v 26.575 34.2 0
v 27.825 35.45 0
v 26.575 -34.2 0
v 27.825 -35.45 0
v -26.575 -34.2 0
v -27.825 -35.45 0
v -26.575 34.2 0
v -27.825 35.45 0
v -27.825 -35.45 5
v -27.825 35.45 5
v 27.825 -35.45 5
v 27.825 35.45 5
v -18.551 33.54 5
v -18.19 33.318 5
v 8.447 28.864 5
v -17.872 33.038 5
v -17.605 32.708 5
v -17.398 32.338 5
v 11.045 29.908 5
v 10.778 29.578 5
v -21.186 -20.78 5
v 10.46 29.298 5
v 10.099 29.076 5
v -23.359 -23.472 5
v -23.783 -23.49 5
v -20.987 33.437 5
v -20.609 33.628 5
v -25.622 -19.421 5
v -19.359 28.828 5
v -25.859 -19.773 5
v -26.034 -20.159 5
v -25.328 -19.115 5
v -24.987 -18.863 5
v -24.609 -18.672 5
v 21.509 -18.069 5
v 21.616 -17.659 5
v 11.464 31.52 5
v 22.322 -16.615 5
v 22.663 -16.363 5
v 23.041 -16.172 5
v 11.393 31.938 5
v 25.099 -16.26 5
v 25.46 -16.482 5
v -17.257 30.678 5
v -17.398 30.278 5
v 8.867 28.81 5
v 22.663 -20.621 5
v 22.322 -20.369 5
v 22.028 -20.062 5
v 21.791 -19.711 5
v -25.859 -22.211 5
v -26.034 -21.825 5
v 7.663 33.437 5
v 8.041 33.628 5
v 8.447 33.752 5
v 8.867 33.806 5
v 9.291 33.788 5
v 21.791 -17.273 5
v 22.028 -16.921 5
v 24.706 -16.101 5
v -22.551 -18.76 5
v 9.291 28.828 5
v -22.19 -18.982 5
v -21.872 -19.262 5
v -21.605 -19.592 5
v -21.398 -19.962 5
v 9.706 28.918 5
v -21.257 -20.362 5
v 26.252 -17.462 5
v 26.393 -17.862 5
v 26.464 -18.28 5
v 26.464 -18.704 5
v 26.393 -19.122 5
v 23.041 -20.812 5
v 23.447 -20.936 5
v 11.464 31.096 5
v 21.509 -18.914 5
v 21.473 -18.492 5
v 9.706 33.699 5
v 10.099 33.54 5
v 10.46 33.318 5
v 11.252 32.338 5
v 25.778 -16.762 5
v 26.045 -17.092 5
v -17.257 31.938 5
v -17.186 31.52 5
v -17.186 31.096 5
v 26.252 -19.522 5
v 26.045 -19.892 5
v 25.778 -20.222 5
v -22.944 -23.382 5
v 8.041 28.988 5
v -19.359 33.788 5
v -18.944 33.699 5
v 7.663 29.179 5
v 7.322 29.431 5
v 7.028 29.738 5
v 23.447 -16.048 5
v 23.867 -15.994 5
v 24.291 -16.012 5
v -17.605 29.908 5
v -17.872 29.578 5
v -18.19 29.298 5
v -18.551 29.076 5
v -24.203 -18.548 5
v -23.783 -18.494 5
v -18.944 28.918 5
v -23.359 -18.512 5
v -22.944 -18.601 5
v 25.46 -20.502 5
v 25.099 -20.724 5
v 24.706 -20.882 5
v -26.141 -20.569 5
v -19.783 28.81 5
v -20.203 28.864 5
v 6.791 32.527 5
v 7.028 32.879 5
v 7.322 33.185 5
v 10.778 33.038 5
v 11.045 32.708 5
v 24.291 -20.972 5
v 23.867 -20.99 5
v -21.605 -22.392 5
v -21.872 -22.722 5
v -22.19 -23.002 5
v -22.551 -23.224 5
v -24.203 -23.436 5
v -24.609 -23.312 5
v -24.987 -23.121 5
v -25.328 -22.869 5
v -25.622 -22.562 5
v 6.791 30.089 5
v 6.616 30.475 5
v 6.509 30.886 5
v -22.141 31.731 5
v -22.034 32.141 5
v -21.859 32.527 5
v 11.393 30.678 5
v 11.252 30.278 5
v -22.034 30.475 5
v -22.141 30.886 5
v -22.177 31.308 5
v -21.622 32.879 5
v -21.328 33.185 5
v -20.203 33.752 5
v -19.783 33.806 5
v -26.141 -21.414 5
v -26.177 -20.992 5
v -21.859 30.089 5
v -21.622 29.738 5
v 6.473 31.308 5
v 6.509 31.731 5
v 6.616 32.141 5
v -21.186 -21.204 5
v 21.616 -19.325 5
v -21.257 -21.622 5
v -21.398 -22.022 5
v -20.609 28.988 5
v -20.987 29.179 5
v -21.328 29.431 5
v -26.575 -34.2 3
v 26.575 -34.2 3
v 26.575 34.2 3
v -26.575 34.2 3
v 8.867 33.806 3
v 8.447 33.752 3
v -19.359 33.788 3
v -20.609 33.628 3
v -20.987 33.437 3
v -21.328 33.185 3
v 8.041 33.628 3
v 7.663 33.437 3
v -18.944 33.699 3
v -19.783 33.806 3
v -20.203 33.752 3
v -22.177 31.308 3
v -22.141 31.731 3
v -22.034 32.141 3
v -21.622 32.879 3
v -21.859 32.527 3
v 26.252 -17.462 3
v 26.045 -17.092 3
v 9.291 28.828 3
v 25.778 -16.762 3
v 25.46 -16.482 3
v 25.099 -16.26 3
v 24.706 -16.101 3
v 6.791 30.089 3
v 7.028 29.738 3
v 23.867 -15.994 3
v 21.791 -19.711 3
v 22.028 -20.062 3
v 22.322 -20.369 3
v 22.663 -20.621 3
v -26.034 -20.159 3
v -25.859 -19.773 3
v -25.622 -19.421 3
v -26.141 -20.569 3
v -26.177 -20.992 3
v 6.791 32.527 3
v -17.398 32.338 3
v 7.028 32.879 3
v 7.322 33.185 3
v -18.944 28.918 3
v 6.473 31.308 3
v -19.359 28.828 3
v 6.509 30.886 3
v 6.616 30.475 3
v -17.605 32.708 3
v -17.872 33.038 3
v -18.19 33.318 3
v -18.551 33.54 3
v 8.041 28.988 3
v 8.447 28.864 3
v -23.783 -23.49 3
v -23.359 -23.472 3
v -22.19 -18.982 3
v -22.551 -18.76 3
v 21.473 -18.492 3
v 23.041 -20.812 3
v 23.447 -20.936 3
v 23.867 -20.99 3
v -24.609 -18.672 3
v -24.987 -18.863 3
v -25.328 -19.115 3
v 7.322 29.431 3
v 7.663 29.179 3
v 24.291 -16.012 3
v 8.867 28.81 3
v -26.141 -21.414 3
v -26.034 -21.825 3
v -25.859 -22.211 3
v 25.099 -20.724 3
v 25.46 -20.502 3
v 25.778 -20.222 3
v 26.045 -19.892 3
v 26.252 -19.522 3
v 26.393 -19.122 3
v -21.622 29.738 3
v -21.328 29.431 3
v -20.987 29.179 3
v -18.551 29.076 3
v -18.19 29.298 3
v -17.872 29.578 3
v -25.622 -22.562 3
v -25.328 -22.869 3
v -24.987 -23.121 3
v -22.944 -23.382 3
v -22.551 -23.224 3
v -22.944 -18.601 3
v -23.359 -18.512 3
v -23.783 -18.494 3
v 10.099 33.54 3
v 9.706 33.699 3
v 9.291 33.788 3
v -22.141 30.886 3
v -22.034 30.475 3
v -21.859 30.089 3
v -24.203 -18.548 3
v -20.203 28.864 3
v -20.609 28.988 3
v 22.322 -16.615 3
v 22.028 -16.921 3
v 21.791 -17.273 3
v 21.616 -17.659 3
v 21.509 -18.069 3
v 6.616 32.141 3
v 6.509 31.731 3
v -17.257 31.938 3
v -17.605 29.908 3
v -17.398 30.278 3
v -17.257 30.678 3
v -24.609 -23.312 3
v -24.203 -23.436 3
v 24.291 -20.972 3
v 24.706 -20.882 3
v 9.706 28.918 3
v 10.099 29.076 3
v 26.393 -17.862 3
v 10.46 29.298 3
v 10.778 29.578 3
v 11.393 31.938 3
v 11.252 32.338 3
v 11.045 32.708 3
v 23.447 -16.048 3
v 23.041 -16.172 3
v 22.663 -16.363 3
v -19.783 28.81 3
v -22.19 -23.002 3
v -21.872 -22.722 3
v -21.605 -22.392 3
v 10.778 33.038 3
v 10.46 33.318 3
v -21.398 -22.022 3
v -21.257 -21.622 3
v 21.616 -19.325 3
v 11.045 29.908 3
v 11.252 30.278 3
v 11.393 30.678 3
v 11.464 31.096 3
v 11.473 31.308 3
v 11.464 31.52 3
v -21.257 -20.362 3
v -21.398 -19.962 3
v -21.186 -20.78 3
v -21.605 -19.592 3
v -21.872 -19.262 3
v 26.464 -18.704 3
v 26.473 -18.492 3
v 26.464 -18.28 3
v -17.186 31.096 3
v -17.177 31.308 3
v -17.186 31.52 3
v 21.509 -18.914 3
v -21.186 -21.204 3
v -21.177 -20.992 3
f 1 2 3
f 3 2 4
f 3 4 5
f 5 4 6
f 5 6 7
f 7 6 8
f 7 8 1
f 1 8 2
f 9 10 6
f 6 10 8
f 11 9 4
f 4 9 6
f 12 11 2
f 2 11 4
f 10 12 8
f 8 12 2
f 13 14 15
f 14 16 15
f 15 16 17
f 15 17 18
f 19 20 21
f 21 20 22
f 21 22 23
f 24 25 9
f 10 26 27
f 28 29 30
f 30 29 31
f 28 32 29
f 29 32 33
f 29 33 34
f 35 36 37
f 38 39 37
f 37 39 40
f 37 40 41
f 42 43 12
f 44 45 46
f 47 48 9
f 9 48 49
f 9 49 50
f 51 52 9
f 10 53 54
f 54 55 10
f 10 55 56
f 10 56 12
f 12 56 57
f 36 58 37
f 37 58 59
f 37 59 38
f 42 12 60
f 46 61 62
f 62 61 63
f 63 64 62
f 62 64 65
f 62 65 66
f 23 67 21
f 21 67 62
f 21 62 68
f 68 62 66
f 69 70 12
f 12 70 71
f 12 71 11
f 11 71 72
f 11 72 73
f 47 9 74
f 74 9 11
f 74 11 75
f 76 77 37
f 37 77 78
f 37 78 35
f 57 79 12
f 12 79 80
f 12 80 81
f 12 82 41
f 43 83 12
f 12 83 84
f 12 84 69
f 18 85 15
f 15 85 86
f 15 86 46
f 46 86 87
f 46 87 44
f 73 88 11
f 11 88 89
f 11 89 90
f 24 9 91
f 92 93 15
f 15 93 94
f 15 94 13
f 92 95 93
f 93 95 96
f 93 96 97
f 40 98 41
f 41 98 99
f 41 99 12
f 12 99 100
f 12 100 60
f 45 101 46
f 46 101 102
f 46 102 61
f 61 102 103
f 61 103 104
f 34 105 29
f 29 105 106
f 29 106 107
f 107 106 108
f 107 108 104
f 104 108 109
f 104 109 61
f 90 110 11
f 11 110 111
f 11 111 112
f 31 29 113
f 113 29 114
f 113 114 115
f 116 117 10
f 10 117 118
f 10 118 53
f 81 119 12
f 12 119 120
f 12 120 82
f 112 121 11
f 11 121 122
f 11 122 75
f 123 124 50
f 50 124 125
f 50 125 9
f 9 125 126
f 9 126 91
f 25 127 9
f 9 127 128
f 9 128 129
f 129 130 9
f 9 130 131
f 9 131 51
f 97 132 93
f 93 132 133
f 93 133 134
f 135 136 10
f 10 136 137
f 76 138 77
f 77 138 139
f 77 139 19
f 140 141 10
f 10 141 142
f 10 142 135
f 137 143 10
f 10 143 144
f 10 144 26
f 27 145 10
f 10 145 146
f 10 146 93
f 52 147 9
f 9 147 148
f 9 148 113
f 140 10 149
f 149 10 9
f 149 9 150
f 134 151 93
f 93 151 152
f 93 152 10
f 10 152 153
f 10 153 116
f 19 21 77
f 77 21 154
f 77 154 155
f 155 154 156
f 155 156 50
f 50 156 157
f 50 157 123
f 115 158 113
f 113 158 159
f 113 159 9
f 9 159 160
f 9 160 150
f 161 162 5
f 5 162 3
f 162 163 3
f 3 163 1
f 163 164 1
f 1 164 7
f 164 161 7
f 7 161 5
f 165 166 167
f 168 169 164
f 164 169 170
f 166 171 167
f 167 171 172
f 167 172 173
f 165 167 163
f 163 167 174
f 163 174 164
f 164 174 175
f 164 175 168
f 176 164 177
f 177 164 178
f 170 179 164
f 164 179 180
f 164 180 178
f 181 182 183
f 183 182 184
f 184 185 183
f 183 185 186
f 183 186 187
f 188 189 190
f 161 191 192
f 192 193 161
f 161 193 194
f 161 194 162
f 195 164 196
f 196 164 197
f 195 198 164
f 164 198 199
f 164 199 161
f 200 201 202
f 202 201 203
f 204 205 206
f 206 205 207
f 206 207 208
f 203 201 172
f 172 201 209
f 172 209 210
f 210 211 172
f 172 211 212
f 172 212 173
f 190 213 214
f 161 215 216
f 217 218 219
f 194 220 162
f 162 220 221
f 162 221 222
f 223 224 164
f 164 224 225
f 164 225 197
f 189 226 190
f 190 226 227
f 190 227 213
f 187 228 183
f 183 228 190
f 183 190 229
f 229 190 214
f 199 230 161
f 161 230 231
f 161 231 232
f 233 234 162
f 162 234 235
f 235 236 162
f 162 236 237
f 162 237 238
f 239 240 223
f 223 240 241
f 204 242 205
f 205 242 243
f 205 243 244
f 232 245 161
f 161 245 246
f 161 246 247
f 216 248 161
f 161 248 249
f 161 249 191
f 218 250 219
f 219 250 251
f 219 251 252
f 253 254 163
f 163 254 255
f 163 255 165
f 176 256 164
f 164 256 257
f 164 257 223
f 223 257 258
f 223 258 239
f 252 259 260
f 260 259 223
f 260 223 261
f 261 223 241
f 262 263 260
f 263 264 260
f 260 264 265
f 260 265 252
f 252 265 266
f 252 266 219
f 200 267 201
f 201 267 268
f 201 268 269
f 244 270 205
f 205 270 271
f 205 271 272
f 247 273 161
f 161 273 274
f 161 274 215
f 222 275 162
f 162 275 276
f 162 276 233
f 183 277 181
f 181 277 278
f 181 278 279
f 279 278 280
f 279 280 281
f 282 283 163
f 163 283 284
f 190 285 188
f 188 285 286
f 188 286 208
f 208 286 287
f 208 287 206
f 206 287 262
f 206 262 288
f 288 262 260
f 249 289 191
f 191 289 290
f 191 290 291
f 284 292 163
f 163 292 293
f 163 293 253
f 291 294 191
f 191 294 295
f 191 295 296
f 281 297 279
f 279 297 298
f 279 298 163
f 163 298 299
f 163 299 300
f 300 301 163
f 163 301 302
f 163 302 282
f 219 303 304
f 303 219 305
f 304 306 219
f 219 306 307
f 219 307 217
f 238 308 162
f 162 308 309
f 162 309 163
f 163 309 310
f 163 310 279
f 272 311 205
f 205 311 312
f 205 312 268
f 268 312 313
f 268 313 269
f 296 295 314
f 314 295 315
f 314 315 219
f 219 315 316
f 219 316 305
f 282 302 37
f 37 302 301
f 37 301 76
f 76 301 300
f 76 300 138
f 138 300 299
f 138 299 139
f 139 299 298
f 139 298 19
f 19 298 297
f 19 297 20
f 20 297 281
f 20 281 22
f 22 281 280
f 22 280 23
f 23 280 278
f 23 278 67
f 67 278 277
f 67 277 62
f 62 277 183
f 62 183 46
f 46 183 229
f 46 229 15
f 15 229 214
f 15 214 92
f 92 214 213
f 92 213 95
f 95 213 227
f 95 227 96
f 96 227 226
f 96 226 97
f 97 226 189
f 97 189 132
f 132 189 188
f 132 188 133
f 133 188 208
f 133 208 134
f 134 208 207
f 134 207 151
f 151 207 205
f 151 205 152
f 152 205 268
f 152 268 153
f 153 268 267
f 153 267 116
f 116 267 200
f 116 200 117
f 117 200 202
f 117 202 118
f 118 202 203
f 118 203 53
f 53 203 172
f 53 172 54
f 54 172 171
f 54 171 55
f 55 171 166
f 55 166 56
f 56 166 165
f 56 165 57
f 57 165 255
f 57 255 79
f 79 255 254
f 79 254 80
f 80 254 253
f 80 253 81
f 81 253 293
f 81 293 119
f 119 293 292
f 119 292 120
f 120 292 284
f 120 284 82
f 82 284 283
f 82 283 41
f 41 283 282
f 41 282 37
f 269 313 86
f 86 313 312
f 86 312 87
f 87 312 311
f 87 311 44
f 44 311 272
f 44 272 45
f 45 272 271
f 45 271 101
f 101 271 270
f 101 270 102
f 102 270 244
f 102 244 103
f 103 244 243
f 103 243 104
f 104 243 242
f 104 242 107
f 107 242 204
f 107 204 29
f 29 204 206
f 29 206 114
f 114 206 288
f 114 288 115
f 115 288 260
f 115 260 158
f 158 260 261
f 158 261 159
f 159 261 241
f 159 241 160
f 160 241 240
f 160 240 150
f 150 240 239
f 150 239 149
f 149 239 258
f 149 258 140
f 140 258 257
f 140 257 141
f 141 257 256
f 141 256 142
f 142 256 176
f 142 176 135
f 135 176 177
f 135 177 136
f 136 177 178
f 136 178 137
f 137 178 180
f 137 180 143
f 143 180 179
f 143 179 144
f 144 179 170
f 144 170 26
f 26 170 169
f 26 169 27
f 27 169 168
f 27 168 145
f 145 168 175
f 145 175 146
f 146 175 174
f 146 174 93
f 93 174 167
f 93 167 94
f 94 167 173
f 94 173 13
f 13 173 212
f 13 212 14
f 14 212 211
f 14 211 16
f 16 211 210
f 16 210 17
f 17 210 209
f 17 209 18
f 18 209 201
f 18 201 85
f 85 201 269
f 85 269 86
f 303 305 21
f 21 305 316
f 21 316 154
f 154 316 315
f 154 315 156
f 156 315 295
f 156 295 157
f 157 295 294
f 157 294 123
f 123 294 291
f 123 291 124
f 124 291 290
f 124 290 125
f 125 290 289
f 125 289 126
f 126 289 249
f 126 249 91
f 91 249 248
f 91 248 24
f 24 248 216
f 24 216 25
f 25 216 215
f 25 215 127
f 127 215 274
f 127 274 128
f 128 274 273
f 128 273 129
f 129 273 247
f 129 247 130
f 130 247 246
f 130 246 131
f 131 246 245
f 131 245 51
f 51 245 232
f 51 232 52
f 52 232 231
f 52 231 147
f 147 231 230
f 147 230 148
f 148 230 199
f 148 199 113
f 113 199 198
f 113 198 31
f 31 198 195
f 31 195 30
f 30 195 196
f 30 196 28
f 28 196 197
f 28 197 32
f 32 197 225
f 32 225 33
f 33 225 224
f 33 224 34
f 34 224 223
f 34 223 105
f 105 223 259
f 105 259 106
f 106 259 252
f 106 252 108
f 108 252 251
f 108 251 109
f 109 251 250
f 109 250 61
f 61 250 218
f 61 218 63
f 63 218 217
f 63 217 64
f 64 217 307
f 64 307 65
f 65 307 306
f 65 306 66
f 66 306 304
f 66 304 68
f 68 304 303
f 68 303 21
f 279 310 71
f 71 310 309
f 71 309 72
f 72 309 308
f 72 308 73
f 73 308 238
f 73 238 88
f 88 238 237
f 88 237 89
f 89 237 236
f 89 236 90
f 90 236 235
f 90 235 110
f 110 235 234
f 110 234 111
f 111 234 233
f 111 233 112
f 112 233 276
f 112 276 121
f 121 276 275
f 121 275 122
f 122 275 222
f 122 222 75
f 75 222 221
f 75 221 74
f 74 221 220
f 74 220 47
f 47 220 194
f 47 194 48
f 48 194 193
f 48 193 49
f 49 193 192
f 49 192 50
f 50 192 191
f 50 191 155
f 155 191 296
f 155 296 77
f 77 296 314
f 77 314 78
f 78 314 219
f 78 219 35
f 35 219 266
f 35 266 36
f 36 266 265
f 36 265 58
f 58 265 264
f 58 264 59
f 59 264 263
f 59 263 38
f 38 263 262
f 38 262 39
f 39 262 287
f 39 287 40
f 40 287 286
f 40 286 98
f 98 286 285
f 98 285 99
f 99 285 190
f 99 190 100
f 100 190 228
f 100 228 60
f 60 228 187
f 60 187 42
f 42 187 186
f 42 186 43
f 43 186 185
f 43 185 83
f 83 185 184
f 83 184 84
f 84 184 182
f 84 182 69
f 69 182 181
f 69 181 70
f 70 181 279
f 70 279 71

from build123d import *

# Parameters (mm, degrees)
SKETCH1_W           = 55.65
SKETCH1_H           = 70.9
BOSS_EXTRUDE1_DEPTH = 5
SKETCH3_W           = 53.15
SKETCH3_H           = 68.4
CUT_EXTRUDE1_DEPTH  = 3
SKETCH2_R           = 2.5
CUT_EXTRUDE2_DEPTH  = 6


with BuildPart() as part:
    # Sketch1 → Boss-Extrude1 (new body)
    with BuildSketch(Plane.XY):
        Rectangle(SKETCH1_W, SKETCH1_H)
    extrude(amount=BOSS_EXTRUDE1_DEPTH)

    # Sketch3 → Cut-Extrude1 (cut)
    with BuildSketch(Plane(origin=(0, 0, 0), x_dir=(-1, 0, 0), z_dir=(0, 0, -1))):
        Rectangle(SKETCH3_W, SKETCH3_H)
    extrude(amount=-CUT_EXTRUDE1_DEPTH, mode=Mode.SUBTRACT)

    # Sketch2 → Cut-Extrude2 (cut, through all)
    with BuildSketch(Plane(origin=(0, 0, 0), x_dir=(-1, 0, 0), z_dir=(0, 0, -1))):
        with Locations((-8.973470341, 31.308167243)):
            Circle(SKETCH2_R)
        with Locations((-23.973470341, -18.491832757)):
            Circle(SKETCH2_R)
        with Locations((23.676529659, -20.991832757)):
            Circle(SKETCH2_R)
        with Locations((19.676529659, 31.308167243)):
            Circle(SKETCH2_R)
    extrude(amount=-CUT_EXTRUDE2_DEPTH, mode=Mode.SUBTRACT)


solid = part.part
